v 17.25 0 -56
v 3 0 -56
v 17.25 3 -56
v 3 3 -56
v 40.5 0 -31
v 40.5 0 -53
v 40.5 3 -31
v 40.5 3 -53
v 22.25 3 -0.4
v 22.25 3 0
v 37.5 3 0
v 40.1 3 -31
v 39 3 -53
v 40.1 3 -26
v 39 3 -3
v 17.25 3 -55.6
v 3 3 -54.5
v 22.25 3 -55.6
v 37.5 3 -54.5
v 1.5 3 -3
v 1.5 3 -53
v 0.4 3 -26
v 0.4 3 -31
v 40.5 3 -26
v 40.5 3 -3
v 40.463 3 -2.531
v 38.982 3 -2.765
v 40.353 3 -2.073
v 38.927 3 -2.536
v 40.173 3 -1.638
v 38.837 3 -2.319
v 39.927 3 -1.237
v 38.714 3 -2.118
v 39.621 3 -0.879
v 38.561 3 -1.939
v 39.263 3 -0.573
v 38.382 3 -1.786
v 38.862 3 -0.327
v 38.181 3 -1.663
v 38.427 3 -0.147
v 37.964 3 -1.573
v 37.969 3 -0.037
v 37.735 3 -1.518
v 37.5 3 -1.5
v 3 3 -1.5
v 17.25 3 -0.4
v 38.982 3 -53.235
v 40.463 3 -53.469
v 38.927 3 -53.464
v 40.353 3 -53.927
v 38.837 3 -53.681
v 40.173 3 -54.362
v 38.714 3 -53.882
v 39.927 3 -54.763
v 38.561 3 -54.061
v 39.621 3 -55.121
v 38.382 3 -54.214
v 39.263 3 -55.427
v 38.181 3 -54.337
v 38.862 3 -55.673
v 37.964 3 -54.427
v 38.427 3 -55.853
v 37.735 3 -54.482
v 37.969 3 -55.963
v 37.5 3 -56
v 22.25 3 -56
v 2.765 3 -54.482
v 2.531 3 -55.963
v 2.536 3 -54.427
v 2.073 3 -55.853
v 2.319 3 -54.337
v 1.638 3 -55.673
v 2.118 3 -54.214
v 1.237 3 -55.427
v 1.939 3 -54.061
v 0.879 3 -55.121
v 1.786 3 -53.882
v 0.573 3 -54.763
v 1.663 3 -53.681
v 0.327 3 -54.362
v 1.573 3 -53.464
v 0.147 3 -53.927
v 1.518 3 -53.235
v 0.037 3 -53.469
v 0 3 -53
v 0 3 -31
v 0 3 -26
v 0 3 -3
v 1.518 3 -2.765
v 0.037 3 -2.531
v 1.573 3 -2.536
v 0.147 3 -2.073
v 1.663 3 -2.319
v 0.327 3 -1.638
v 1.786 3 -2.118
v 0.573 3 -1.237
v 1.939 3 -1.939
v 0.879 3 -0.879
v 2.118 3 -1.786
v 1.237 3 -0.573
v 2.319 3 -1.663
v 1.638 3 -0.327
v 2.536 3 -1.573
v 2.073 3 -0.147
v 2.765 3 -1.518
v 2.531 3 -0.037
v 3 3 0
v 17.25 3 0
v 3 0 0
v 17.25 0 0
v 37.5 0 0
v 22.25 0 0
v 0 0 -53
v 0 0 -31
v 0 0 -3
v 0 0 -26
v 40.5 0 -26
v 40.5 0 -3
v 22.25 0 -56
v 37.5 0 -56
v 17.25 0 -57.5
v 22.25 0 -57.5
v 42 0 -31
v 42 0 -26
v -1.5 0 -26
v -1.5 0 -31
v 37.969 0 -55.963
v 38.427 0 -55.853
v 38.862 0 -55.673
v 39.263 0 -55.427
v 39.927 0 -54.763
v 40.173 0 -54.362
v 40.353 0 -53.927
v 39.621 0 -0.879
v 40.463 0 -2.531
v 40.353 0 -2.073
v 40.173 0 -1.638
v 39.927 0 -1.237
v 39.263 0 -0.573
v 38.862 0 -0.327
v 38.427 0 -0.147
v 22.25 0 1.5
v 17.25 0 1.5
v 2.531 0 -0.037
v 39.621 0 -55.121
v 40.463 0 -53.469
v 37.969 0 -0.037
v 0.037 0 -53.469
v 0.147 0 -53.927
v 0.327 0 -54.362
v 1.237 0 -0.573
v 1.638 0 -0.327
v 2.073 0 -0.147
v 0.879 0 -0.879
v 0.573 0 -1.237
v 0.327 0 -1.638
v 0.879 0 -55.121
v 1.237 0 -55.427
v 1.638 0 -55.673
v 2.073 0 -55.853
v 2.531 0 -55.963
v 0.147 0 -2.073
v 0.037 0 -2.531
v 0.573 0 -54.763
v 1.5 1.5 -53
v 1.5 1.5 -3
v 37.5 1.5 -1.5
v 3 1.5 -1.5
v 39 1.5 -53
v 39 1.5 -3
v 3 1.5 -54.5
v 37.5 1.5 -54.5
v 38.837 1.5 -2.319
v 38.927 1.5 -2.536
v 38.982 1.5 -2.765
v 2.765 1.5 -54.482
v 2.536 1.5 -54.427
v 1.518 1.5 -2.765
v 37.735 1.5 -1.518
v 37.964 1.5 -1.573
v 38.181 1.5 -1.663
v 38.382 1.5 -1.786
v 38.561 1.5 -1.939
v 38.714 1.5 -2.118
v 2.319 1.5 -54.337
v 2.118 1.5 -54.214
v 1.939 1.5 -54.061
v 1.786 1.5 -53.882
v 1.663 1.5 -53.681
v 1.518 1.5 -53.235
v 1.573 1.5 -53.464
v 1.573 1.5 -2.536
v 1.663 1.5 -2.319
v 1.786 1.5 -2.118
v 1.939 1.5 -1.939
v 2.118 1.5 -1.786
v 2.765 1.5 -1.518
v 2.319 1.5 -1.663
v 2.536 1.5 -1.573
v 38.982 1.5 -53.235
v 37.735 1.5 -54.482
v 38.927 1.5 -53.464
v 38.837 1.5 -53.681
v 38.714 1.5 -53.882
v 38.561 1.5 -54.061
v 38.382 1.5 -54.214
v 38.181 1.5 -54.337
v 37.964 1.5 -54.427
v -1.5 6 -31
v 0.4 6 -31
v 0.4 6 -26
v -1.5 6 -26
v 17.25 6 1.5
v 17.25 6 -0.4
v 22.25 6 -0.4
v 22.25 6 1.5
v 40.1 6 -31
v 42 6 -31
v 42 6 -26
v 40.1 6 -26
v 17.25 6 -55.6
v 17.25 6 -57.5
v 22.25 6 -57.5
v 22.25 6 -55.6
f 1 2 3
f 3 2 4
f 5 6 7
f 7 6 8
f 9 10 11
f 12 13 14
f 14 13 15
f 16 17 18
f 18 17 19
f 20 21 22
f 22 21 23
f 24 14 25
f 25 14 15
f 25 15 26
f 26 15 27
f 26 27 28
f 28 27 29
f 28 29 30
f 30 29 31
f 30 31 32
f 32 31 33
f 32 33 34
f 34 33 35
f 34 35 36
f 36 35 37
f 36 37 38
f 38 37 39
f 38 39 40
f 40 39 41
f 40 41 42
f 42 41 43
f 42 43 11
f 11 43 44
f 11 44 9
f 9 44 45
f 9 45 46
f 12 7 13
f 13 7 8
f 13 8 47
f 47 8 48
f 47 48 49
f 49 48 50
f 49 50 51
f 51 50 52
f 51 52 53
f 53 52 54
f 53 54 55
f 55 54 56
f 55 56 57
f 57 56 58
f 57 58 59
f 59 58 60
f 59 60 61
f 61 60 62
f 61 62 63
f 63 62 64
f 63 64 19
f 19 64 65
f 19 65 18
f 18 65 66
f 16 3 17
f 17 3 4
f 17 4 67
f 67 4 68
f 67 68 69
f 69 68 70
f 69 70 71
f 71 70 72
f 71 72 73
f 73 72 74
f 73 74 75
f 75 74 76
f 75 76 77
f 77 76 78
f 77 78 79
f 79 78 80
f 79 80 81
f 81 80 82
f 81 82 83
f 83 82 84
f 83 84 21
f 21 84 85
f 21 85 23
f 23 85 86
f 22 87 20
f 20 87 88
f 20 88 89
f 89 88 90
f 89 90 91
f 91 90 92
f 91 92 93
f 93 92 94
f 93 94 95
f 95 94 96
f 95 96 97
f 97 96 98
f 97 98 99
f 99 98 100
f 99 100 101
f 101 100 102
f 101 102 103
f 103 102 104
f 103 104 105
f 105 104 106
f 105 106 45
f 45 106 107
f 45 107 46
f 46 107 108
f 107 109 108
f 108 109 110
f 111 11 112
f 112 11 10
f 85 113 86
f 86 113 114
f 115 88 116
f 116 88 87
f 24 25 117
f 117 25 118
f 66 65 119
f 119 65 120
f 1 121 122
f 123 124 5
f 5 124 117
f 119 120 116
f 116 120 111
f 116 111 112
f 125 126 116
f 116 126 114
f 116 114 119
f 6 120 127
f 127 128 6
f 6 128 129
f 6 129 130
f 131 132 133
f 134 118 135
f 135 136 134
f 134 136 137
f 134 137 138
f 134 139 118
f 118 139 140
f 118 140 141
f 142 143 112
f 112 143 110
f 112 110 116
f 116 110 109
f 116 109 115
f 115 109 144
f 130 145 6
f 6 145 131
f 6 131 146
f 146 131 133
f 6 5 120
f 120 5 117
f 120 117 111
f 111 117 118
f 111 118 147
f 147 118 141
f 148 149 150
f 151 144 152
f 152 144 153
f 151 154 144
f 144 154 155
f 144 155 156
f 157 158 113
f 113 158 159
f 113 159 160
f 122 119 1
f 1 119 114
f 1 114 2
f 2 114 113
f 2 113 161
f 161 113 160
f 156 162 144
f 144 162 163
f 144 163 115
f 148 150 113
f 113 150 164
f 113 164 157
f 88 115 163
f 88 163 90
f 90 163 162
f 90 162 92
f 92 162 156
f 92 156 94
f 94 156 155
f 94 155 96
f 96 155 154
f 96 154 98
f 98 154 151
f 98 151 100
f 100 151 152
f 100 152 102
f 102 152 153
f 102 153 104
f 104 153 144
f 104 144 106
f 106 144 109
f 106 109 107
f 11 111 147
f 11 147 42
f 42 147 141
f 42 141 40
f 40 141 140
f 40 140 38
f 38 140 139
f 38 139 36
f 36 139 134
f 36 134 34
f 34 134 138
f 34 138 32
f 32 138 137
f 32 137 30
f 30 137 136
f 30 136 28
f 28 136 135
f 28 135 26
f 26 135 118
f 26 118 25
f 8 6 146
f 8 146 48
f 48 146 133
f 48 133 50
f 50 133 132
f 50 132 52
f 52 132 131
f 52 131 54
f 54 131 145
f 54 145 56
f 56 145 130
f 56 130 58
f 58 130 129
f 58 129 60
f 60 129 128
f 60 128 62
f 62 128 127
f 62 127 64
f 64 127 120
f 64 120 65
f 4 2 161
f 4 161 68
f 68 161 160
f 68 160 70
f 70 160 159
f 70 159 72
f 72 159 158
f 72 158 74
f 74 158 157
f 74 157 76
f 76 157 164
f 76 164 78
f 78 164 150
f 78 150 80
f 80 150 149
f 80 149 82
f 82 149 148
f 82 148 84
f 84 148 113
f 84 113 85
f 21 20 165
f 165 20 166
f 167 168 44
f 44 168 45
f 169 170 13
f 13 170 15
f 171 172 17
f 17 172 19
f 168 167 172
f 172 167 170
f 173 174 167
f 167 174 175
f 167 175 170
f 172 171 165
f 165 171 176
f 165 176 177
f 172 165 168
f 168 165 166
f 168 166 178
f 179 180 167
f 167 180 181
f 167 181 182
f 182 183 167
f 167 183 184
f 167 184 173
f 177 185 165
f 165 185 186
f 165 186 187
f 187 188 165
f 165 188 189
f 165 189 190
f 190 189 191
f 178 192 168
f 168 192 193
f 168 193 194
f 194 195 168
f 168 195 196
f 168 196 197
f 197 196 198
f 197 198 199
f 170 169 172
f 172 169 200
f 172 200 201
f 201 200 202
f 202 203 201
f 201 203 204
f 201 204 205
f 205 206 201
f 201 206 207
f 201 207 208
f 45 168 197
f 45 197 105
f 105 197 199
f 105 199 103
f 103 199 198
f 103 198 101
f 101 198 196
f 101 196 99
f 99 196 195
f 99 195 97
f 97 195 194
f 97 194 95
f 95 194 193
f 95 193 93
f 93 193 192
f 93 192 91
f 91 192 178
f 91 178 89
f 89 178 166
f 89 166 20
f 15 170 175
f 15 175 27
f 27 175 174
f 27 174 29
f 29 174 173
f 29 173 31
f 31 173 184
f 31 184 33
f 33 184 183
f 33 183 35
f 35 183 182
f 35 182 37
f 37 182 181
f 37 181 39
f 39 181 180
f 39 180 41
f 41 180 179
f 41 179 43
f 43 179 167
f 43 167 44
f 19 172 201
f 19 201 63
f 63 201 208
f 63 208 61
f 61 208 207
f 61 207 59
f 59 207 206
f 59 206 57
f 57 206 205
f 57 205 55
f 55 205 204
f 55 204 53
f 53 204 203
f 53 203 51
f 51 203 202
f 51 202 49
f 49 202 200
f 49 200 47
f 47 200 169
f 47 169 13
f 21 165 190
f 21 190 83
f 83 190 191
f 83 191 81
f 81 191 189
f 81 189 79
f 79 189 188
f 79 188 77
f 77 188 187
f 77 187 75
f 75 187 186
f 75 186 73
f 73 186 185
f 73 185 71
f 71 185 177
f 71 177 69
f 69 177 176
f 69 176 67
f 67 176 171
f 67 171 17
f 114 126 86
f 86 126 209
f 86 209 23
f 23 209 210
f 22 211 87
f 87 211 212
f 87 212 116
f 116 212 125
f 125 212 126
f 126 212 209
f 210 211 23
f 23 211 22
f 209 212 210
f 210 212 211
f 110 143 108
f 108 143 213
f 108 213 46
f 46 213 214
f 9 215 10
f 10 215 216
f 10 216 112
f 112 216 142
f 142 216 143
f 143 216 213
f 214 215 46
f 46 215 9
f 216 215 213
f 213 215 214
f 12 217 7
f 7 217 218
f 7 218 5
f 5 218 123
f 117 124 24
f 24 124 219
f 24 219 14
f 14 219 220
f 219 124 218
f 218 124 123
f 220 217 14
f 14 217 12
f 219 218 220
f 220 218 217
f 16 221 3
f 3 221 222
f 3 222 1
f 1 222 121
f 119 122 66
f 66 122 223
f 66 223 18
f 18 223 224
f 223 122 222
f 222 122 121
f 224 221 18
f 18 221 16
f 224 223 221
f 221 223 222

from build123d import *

# Parameters (mm, degrees)
SKETCH1_W           = 40.5
SKETCH1_H           = 56
BOSS_EXTRUDE1_DEPTH = 3
FILLET1_R           = 3
SHELL1_T            = -1.5
SKETCH2_W           = 5
SKETCH2_H           = 3
BOSS_EXTRUDE2_DEPTH = 1.5
SKETCH3_W           = 1.9
SKETCH3_H           = 5
BOSS_EXTRUDE3_DEPTH = 3
SKETCH8_W           = 5
SKETCH8_H           = 3
BOSS_EXTRUDE5_DEPTH = 1.5
SKETCH9_W           = 5
SKETCH9_H           = 1.9
BOSS_EXTRUDE6_DEPTH = 3


with BuildPart() as part:
    # Sketch1 → Boss-Extrude1 (new body)
    with BuildSketch(Plane(origin=(0, 0, 0), x_dir=(1, 0, 0), z_dir=(0, 1, 0))):
        with Locations((20.25, 28)):
            Rectangle(SKETCH1_W, SKETCH1_H)
    extrude(amount=BOSS_EXTRUDE1_DEPTH)

    # Fillet1
    fillet1_edges = [part.edges().sort_by_distance(p)[0] for p in [
        (0, 1.5, -56),
        (40.5, 1.5, -56),
        (40.5, 1.5, 0),
        (0, 1.5, 0),
    ]]
    fillet(fillet1_edges, radius=FILLET1_R)

    # Shell1
    shell1_openings = [part.faces().sort_by_distance(p)[0] for p in [
        (20.25, 3, -28),
    ]]
    offset(amount=SHELL1_T, openings=shell1_openings, kind=Kind.INTERSECTION)

    # Sketch2 → Boss-Extrude2 (add)
    with BuildSketch(Plane.ZY):
        with Locations((-28.5, 1.5)):
            Rectangle(SKETCH2_W, SKETCH2_H)
    boss_extrude2 = extrude(amount=BOSS_EXTRUDE2_DEPTH)

    # Sketch3 → Boss-Extrude3 (add)
    with BuildSketch(Plane(origin=(0, 3, 0), x_dir=(1, 0, 0), z_dir=(0, 1, 0))):
        with Locations((-0.55, 28.5)):
            Rectangle(SKETCH3_W, SKETCH3_H)
    boss_extrude3 = extrude(amount=BOSS_EXTRUDE3_DEPTH)

    # Sketch8 → Boss-Extrude5 (add)
    with BuildSketch(Plane.XY):
        with Locations((19.75, 1.5)):
            Rectangle(SKETCH8_W, SKETCH8_H)
    boss_extrude5 = extrude(amount=BOSS_EXTRUDE5_DEPTH)

    # Sketch9 → Boss-Extrude6 (add)
    with BuildSketch(Plane(origin=(0, 3, 0), x_dir=(1, 0, 0), z_dir=(0, 1, 0))):
        with Locations((19.75, -0.55)):
            Rectangle(SKETCH9_W, SKETCH9_H)
    boss_extrude6 = extrude(amount=BOSS_EXTRUDE6_DEPTH)

    # Mirror3: Boss-Extrude2, Boss-Extrude3 across plane
    add(boss_extrude2.mirror(Plane(origin=(20.25, 0, 0), x_dir=(0, 0, 1), z_dir=(1, 0, 0))))
    add(boss_extrude3.mirror(Plane(origin=(20.25, 0, 0), x_dir=(0, 0, 1), z_dir=(1, 0, 0))))

    # Mirror4: Boss-Extrude5, Boss-Extrude6 across plane
    add(boss_extrude5.mirror(Plane(origin=(0, 0, -28), x_dir=(1, 0, 0), z_dir=(0, 0, -1))))
    add(boss_extrude6.mirror(Plane(origin=(0, 0, -28), x_dir=(1, 0, 0), z_dir=(0, 0, -1))))


solid = part.part
